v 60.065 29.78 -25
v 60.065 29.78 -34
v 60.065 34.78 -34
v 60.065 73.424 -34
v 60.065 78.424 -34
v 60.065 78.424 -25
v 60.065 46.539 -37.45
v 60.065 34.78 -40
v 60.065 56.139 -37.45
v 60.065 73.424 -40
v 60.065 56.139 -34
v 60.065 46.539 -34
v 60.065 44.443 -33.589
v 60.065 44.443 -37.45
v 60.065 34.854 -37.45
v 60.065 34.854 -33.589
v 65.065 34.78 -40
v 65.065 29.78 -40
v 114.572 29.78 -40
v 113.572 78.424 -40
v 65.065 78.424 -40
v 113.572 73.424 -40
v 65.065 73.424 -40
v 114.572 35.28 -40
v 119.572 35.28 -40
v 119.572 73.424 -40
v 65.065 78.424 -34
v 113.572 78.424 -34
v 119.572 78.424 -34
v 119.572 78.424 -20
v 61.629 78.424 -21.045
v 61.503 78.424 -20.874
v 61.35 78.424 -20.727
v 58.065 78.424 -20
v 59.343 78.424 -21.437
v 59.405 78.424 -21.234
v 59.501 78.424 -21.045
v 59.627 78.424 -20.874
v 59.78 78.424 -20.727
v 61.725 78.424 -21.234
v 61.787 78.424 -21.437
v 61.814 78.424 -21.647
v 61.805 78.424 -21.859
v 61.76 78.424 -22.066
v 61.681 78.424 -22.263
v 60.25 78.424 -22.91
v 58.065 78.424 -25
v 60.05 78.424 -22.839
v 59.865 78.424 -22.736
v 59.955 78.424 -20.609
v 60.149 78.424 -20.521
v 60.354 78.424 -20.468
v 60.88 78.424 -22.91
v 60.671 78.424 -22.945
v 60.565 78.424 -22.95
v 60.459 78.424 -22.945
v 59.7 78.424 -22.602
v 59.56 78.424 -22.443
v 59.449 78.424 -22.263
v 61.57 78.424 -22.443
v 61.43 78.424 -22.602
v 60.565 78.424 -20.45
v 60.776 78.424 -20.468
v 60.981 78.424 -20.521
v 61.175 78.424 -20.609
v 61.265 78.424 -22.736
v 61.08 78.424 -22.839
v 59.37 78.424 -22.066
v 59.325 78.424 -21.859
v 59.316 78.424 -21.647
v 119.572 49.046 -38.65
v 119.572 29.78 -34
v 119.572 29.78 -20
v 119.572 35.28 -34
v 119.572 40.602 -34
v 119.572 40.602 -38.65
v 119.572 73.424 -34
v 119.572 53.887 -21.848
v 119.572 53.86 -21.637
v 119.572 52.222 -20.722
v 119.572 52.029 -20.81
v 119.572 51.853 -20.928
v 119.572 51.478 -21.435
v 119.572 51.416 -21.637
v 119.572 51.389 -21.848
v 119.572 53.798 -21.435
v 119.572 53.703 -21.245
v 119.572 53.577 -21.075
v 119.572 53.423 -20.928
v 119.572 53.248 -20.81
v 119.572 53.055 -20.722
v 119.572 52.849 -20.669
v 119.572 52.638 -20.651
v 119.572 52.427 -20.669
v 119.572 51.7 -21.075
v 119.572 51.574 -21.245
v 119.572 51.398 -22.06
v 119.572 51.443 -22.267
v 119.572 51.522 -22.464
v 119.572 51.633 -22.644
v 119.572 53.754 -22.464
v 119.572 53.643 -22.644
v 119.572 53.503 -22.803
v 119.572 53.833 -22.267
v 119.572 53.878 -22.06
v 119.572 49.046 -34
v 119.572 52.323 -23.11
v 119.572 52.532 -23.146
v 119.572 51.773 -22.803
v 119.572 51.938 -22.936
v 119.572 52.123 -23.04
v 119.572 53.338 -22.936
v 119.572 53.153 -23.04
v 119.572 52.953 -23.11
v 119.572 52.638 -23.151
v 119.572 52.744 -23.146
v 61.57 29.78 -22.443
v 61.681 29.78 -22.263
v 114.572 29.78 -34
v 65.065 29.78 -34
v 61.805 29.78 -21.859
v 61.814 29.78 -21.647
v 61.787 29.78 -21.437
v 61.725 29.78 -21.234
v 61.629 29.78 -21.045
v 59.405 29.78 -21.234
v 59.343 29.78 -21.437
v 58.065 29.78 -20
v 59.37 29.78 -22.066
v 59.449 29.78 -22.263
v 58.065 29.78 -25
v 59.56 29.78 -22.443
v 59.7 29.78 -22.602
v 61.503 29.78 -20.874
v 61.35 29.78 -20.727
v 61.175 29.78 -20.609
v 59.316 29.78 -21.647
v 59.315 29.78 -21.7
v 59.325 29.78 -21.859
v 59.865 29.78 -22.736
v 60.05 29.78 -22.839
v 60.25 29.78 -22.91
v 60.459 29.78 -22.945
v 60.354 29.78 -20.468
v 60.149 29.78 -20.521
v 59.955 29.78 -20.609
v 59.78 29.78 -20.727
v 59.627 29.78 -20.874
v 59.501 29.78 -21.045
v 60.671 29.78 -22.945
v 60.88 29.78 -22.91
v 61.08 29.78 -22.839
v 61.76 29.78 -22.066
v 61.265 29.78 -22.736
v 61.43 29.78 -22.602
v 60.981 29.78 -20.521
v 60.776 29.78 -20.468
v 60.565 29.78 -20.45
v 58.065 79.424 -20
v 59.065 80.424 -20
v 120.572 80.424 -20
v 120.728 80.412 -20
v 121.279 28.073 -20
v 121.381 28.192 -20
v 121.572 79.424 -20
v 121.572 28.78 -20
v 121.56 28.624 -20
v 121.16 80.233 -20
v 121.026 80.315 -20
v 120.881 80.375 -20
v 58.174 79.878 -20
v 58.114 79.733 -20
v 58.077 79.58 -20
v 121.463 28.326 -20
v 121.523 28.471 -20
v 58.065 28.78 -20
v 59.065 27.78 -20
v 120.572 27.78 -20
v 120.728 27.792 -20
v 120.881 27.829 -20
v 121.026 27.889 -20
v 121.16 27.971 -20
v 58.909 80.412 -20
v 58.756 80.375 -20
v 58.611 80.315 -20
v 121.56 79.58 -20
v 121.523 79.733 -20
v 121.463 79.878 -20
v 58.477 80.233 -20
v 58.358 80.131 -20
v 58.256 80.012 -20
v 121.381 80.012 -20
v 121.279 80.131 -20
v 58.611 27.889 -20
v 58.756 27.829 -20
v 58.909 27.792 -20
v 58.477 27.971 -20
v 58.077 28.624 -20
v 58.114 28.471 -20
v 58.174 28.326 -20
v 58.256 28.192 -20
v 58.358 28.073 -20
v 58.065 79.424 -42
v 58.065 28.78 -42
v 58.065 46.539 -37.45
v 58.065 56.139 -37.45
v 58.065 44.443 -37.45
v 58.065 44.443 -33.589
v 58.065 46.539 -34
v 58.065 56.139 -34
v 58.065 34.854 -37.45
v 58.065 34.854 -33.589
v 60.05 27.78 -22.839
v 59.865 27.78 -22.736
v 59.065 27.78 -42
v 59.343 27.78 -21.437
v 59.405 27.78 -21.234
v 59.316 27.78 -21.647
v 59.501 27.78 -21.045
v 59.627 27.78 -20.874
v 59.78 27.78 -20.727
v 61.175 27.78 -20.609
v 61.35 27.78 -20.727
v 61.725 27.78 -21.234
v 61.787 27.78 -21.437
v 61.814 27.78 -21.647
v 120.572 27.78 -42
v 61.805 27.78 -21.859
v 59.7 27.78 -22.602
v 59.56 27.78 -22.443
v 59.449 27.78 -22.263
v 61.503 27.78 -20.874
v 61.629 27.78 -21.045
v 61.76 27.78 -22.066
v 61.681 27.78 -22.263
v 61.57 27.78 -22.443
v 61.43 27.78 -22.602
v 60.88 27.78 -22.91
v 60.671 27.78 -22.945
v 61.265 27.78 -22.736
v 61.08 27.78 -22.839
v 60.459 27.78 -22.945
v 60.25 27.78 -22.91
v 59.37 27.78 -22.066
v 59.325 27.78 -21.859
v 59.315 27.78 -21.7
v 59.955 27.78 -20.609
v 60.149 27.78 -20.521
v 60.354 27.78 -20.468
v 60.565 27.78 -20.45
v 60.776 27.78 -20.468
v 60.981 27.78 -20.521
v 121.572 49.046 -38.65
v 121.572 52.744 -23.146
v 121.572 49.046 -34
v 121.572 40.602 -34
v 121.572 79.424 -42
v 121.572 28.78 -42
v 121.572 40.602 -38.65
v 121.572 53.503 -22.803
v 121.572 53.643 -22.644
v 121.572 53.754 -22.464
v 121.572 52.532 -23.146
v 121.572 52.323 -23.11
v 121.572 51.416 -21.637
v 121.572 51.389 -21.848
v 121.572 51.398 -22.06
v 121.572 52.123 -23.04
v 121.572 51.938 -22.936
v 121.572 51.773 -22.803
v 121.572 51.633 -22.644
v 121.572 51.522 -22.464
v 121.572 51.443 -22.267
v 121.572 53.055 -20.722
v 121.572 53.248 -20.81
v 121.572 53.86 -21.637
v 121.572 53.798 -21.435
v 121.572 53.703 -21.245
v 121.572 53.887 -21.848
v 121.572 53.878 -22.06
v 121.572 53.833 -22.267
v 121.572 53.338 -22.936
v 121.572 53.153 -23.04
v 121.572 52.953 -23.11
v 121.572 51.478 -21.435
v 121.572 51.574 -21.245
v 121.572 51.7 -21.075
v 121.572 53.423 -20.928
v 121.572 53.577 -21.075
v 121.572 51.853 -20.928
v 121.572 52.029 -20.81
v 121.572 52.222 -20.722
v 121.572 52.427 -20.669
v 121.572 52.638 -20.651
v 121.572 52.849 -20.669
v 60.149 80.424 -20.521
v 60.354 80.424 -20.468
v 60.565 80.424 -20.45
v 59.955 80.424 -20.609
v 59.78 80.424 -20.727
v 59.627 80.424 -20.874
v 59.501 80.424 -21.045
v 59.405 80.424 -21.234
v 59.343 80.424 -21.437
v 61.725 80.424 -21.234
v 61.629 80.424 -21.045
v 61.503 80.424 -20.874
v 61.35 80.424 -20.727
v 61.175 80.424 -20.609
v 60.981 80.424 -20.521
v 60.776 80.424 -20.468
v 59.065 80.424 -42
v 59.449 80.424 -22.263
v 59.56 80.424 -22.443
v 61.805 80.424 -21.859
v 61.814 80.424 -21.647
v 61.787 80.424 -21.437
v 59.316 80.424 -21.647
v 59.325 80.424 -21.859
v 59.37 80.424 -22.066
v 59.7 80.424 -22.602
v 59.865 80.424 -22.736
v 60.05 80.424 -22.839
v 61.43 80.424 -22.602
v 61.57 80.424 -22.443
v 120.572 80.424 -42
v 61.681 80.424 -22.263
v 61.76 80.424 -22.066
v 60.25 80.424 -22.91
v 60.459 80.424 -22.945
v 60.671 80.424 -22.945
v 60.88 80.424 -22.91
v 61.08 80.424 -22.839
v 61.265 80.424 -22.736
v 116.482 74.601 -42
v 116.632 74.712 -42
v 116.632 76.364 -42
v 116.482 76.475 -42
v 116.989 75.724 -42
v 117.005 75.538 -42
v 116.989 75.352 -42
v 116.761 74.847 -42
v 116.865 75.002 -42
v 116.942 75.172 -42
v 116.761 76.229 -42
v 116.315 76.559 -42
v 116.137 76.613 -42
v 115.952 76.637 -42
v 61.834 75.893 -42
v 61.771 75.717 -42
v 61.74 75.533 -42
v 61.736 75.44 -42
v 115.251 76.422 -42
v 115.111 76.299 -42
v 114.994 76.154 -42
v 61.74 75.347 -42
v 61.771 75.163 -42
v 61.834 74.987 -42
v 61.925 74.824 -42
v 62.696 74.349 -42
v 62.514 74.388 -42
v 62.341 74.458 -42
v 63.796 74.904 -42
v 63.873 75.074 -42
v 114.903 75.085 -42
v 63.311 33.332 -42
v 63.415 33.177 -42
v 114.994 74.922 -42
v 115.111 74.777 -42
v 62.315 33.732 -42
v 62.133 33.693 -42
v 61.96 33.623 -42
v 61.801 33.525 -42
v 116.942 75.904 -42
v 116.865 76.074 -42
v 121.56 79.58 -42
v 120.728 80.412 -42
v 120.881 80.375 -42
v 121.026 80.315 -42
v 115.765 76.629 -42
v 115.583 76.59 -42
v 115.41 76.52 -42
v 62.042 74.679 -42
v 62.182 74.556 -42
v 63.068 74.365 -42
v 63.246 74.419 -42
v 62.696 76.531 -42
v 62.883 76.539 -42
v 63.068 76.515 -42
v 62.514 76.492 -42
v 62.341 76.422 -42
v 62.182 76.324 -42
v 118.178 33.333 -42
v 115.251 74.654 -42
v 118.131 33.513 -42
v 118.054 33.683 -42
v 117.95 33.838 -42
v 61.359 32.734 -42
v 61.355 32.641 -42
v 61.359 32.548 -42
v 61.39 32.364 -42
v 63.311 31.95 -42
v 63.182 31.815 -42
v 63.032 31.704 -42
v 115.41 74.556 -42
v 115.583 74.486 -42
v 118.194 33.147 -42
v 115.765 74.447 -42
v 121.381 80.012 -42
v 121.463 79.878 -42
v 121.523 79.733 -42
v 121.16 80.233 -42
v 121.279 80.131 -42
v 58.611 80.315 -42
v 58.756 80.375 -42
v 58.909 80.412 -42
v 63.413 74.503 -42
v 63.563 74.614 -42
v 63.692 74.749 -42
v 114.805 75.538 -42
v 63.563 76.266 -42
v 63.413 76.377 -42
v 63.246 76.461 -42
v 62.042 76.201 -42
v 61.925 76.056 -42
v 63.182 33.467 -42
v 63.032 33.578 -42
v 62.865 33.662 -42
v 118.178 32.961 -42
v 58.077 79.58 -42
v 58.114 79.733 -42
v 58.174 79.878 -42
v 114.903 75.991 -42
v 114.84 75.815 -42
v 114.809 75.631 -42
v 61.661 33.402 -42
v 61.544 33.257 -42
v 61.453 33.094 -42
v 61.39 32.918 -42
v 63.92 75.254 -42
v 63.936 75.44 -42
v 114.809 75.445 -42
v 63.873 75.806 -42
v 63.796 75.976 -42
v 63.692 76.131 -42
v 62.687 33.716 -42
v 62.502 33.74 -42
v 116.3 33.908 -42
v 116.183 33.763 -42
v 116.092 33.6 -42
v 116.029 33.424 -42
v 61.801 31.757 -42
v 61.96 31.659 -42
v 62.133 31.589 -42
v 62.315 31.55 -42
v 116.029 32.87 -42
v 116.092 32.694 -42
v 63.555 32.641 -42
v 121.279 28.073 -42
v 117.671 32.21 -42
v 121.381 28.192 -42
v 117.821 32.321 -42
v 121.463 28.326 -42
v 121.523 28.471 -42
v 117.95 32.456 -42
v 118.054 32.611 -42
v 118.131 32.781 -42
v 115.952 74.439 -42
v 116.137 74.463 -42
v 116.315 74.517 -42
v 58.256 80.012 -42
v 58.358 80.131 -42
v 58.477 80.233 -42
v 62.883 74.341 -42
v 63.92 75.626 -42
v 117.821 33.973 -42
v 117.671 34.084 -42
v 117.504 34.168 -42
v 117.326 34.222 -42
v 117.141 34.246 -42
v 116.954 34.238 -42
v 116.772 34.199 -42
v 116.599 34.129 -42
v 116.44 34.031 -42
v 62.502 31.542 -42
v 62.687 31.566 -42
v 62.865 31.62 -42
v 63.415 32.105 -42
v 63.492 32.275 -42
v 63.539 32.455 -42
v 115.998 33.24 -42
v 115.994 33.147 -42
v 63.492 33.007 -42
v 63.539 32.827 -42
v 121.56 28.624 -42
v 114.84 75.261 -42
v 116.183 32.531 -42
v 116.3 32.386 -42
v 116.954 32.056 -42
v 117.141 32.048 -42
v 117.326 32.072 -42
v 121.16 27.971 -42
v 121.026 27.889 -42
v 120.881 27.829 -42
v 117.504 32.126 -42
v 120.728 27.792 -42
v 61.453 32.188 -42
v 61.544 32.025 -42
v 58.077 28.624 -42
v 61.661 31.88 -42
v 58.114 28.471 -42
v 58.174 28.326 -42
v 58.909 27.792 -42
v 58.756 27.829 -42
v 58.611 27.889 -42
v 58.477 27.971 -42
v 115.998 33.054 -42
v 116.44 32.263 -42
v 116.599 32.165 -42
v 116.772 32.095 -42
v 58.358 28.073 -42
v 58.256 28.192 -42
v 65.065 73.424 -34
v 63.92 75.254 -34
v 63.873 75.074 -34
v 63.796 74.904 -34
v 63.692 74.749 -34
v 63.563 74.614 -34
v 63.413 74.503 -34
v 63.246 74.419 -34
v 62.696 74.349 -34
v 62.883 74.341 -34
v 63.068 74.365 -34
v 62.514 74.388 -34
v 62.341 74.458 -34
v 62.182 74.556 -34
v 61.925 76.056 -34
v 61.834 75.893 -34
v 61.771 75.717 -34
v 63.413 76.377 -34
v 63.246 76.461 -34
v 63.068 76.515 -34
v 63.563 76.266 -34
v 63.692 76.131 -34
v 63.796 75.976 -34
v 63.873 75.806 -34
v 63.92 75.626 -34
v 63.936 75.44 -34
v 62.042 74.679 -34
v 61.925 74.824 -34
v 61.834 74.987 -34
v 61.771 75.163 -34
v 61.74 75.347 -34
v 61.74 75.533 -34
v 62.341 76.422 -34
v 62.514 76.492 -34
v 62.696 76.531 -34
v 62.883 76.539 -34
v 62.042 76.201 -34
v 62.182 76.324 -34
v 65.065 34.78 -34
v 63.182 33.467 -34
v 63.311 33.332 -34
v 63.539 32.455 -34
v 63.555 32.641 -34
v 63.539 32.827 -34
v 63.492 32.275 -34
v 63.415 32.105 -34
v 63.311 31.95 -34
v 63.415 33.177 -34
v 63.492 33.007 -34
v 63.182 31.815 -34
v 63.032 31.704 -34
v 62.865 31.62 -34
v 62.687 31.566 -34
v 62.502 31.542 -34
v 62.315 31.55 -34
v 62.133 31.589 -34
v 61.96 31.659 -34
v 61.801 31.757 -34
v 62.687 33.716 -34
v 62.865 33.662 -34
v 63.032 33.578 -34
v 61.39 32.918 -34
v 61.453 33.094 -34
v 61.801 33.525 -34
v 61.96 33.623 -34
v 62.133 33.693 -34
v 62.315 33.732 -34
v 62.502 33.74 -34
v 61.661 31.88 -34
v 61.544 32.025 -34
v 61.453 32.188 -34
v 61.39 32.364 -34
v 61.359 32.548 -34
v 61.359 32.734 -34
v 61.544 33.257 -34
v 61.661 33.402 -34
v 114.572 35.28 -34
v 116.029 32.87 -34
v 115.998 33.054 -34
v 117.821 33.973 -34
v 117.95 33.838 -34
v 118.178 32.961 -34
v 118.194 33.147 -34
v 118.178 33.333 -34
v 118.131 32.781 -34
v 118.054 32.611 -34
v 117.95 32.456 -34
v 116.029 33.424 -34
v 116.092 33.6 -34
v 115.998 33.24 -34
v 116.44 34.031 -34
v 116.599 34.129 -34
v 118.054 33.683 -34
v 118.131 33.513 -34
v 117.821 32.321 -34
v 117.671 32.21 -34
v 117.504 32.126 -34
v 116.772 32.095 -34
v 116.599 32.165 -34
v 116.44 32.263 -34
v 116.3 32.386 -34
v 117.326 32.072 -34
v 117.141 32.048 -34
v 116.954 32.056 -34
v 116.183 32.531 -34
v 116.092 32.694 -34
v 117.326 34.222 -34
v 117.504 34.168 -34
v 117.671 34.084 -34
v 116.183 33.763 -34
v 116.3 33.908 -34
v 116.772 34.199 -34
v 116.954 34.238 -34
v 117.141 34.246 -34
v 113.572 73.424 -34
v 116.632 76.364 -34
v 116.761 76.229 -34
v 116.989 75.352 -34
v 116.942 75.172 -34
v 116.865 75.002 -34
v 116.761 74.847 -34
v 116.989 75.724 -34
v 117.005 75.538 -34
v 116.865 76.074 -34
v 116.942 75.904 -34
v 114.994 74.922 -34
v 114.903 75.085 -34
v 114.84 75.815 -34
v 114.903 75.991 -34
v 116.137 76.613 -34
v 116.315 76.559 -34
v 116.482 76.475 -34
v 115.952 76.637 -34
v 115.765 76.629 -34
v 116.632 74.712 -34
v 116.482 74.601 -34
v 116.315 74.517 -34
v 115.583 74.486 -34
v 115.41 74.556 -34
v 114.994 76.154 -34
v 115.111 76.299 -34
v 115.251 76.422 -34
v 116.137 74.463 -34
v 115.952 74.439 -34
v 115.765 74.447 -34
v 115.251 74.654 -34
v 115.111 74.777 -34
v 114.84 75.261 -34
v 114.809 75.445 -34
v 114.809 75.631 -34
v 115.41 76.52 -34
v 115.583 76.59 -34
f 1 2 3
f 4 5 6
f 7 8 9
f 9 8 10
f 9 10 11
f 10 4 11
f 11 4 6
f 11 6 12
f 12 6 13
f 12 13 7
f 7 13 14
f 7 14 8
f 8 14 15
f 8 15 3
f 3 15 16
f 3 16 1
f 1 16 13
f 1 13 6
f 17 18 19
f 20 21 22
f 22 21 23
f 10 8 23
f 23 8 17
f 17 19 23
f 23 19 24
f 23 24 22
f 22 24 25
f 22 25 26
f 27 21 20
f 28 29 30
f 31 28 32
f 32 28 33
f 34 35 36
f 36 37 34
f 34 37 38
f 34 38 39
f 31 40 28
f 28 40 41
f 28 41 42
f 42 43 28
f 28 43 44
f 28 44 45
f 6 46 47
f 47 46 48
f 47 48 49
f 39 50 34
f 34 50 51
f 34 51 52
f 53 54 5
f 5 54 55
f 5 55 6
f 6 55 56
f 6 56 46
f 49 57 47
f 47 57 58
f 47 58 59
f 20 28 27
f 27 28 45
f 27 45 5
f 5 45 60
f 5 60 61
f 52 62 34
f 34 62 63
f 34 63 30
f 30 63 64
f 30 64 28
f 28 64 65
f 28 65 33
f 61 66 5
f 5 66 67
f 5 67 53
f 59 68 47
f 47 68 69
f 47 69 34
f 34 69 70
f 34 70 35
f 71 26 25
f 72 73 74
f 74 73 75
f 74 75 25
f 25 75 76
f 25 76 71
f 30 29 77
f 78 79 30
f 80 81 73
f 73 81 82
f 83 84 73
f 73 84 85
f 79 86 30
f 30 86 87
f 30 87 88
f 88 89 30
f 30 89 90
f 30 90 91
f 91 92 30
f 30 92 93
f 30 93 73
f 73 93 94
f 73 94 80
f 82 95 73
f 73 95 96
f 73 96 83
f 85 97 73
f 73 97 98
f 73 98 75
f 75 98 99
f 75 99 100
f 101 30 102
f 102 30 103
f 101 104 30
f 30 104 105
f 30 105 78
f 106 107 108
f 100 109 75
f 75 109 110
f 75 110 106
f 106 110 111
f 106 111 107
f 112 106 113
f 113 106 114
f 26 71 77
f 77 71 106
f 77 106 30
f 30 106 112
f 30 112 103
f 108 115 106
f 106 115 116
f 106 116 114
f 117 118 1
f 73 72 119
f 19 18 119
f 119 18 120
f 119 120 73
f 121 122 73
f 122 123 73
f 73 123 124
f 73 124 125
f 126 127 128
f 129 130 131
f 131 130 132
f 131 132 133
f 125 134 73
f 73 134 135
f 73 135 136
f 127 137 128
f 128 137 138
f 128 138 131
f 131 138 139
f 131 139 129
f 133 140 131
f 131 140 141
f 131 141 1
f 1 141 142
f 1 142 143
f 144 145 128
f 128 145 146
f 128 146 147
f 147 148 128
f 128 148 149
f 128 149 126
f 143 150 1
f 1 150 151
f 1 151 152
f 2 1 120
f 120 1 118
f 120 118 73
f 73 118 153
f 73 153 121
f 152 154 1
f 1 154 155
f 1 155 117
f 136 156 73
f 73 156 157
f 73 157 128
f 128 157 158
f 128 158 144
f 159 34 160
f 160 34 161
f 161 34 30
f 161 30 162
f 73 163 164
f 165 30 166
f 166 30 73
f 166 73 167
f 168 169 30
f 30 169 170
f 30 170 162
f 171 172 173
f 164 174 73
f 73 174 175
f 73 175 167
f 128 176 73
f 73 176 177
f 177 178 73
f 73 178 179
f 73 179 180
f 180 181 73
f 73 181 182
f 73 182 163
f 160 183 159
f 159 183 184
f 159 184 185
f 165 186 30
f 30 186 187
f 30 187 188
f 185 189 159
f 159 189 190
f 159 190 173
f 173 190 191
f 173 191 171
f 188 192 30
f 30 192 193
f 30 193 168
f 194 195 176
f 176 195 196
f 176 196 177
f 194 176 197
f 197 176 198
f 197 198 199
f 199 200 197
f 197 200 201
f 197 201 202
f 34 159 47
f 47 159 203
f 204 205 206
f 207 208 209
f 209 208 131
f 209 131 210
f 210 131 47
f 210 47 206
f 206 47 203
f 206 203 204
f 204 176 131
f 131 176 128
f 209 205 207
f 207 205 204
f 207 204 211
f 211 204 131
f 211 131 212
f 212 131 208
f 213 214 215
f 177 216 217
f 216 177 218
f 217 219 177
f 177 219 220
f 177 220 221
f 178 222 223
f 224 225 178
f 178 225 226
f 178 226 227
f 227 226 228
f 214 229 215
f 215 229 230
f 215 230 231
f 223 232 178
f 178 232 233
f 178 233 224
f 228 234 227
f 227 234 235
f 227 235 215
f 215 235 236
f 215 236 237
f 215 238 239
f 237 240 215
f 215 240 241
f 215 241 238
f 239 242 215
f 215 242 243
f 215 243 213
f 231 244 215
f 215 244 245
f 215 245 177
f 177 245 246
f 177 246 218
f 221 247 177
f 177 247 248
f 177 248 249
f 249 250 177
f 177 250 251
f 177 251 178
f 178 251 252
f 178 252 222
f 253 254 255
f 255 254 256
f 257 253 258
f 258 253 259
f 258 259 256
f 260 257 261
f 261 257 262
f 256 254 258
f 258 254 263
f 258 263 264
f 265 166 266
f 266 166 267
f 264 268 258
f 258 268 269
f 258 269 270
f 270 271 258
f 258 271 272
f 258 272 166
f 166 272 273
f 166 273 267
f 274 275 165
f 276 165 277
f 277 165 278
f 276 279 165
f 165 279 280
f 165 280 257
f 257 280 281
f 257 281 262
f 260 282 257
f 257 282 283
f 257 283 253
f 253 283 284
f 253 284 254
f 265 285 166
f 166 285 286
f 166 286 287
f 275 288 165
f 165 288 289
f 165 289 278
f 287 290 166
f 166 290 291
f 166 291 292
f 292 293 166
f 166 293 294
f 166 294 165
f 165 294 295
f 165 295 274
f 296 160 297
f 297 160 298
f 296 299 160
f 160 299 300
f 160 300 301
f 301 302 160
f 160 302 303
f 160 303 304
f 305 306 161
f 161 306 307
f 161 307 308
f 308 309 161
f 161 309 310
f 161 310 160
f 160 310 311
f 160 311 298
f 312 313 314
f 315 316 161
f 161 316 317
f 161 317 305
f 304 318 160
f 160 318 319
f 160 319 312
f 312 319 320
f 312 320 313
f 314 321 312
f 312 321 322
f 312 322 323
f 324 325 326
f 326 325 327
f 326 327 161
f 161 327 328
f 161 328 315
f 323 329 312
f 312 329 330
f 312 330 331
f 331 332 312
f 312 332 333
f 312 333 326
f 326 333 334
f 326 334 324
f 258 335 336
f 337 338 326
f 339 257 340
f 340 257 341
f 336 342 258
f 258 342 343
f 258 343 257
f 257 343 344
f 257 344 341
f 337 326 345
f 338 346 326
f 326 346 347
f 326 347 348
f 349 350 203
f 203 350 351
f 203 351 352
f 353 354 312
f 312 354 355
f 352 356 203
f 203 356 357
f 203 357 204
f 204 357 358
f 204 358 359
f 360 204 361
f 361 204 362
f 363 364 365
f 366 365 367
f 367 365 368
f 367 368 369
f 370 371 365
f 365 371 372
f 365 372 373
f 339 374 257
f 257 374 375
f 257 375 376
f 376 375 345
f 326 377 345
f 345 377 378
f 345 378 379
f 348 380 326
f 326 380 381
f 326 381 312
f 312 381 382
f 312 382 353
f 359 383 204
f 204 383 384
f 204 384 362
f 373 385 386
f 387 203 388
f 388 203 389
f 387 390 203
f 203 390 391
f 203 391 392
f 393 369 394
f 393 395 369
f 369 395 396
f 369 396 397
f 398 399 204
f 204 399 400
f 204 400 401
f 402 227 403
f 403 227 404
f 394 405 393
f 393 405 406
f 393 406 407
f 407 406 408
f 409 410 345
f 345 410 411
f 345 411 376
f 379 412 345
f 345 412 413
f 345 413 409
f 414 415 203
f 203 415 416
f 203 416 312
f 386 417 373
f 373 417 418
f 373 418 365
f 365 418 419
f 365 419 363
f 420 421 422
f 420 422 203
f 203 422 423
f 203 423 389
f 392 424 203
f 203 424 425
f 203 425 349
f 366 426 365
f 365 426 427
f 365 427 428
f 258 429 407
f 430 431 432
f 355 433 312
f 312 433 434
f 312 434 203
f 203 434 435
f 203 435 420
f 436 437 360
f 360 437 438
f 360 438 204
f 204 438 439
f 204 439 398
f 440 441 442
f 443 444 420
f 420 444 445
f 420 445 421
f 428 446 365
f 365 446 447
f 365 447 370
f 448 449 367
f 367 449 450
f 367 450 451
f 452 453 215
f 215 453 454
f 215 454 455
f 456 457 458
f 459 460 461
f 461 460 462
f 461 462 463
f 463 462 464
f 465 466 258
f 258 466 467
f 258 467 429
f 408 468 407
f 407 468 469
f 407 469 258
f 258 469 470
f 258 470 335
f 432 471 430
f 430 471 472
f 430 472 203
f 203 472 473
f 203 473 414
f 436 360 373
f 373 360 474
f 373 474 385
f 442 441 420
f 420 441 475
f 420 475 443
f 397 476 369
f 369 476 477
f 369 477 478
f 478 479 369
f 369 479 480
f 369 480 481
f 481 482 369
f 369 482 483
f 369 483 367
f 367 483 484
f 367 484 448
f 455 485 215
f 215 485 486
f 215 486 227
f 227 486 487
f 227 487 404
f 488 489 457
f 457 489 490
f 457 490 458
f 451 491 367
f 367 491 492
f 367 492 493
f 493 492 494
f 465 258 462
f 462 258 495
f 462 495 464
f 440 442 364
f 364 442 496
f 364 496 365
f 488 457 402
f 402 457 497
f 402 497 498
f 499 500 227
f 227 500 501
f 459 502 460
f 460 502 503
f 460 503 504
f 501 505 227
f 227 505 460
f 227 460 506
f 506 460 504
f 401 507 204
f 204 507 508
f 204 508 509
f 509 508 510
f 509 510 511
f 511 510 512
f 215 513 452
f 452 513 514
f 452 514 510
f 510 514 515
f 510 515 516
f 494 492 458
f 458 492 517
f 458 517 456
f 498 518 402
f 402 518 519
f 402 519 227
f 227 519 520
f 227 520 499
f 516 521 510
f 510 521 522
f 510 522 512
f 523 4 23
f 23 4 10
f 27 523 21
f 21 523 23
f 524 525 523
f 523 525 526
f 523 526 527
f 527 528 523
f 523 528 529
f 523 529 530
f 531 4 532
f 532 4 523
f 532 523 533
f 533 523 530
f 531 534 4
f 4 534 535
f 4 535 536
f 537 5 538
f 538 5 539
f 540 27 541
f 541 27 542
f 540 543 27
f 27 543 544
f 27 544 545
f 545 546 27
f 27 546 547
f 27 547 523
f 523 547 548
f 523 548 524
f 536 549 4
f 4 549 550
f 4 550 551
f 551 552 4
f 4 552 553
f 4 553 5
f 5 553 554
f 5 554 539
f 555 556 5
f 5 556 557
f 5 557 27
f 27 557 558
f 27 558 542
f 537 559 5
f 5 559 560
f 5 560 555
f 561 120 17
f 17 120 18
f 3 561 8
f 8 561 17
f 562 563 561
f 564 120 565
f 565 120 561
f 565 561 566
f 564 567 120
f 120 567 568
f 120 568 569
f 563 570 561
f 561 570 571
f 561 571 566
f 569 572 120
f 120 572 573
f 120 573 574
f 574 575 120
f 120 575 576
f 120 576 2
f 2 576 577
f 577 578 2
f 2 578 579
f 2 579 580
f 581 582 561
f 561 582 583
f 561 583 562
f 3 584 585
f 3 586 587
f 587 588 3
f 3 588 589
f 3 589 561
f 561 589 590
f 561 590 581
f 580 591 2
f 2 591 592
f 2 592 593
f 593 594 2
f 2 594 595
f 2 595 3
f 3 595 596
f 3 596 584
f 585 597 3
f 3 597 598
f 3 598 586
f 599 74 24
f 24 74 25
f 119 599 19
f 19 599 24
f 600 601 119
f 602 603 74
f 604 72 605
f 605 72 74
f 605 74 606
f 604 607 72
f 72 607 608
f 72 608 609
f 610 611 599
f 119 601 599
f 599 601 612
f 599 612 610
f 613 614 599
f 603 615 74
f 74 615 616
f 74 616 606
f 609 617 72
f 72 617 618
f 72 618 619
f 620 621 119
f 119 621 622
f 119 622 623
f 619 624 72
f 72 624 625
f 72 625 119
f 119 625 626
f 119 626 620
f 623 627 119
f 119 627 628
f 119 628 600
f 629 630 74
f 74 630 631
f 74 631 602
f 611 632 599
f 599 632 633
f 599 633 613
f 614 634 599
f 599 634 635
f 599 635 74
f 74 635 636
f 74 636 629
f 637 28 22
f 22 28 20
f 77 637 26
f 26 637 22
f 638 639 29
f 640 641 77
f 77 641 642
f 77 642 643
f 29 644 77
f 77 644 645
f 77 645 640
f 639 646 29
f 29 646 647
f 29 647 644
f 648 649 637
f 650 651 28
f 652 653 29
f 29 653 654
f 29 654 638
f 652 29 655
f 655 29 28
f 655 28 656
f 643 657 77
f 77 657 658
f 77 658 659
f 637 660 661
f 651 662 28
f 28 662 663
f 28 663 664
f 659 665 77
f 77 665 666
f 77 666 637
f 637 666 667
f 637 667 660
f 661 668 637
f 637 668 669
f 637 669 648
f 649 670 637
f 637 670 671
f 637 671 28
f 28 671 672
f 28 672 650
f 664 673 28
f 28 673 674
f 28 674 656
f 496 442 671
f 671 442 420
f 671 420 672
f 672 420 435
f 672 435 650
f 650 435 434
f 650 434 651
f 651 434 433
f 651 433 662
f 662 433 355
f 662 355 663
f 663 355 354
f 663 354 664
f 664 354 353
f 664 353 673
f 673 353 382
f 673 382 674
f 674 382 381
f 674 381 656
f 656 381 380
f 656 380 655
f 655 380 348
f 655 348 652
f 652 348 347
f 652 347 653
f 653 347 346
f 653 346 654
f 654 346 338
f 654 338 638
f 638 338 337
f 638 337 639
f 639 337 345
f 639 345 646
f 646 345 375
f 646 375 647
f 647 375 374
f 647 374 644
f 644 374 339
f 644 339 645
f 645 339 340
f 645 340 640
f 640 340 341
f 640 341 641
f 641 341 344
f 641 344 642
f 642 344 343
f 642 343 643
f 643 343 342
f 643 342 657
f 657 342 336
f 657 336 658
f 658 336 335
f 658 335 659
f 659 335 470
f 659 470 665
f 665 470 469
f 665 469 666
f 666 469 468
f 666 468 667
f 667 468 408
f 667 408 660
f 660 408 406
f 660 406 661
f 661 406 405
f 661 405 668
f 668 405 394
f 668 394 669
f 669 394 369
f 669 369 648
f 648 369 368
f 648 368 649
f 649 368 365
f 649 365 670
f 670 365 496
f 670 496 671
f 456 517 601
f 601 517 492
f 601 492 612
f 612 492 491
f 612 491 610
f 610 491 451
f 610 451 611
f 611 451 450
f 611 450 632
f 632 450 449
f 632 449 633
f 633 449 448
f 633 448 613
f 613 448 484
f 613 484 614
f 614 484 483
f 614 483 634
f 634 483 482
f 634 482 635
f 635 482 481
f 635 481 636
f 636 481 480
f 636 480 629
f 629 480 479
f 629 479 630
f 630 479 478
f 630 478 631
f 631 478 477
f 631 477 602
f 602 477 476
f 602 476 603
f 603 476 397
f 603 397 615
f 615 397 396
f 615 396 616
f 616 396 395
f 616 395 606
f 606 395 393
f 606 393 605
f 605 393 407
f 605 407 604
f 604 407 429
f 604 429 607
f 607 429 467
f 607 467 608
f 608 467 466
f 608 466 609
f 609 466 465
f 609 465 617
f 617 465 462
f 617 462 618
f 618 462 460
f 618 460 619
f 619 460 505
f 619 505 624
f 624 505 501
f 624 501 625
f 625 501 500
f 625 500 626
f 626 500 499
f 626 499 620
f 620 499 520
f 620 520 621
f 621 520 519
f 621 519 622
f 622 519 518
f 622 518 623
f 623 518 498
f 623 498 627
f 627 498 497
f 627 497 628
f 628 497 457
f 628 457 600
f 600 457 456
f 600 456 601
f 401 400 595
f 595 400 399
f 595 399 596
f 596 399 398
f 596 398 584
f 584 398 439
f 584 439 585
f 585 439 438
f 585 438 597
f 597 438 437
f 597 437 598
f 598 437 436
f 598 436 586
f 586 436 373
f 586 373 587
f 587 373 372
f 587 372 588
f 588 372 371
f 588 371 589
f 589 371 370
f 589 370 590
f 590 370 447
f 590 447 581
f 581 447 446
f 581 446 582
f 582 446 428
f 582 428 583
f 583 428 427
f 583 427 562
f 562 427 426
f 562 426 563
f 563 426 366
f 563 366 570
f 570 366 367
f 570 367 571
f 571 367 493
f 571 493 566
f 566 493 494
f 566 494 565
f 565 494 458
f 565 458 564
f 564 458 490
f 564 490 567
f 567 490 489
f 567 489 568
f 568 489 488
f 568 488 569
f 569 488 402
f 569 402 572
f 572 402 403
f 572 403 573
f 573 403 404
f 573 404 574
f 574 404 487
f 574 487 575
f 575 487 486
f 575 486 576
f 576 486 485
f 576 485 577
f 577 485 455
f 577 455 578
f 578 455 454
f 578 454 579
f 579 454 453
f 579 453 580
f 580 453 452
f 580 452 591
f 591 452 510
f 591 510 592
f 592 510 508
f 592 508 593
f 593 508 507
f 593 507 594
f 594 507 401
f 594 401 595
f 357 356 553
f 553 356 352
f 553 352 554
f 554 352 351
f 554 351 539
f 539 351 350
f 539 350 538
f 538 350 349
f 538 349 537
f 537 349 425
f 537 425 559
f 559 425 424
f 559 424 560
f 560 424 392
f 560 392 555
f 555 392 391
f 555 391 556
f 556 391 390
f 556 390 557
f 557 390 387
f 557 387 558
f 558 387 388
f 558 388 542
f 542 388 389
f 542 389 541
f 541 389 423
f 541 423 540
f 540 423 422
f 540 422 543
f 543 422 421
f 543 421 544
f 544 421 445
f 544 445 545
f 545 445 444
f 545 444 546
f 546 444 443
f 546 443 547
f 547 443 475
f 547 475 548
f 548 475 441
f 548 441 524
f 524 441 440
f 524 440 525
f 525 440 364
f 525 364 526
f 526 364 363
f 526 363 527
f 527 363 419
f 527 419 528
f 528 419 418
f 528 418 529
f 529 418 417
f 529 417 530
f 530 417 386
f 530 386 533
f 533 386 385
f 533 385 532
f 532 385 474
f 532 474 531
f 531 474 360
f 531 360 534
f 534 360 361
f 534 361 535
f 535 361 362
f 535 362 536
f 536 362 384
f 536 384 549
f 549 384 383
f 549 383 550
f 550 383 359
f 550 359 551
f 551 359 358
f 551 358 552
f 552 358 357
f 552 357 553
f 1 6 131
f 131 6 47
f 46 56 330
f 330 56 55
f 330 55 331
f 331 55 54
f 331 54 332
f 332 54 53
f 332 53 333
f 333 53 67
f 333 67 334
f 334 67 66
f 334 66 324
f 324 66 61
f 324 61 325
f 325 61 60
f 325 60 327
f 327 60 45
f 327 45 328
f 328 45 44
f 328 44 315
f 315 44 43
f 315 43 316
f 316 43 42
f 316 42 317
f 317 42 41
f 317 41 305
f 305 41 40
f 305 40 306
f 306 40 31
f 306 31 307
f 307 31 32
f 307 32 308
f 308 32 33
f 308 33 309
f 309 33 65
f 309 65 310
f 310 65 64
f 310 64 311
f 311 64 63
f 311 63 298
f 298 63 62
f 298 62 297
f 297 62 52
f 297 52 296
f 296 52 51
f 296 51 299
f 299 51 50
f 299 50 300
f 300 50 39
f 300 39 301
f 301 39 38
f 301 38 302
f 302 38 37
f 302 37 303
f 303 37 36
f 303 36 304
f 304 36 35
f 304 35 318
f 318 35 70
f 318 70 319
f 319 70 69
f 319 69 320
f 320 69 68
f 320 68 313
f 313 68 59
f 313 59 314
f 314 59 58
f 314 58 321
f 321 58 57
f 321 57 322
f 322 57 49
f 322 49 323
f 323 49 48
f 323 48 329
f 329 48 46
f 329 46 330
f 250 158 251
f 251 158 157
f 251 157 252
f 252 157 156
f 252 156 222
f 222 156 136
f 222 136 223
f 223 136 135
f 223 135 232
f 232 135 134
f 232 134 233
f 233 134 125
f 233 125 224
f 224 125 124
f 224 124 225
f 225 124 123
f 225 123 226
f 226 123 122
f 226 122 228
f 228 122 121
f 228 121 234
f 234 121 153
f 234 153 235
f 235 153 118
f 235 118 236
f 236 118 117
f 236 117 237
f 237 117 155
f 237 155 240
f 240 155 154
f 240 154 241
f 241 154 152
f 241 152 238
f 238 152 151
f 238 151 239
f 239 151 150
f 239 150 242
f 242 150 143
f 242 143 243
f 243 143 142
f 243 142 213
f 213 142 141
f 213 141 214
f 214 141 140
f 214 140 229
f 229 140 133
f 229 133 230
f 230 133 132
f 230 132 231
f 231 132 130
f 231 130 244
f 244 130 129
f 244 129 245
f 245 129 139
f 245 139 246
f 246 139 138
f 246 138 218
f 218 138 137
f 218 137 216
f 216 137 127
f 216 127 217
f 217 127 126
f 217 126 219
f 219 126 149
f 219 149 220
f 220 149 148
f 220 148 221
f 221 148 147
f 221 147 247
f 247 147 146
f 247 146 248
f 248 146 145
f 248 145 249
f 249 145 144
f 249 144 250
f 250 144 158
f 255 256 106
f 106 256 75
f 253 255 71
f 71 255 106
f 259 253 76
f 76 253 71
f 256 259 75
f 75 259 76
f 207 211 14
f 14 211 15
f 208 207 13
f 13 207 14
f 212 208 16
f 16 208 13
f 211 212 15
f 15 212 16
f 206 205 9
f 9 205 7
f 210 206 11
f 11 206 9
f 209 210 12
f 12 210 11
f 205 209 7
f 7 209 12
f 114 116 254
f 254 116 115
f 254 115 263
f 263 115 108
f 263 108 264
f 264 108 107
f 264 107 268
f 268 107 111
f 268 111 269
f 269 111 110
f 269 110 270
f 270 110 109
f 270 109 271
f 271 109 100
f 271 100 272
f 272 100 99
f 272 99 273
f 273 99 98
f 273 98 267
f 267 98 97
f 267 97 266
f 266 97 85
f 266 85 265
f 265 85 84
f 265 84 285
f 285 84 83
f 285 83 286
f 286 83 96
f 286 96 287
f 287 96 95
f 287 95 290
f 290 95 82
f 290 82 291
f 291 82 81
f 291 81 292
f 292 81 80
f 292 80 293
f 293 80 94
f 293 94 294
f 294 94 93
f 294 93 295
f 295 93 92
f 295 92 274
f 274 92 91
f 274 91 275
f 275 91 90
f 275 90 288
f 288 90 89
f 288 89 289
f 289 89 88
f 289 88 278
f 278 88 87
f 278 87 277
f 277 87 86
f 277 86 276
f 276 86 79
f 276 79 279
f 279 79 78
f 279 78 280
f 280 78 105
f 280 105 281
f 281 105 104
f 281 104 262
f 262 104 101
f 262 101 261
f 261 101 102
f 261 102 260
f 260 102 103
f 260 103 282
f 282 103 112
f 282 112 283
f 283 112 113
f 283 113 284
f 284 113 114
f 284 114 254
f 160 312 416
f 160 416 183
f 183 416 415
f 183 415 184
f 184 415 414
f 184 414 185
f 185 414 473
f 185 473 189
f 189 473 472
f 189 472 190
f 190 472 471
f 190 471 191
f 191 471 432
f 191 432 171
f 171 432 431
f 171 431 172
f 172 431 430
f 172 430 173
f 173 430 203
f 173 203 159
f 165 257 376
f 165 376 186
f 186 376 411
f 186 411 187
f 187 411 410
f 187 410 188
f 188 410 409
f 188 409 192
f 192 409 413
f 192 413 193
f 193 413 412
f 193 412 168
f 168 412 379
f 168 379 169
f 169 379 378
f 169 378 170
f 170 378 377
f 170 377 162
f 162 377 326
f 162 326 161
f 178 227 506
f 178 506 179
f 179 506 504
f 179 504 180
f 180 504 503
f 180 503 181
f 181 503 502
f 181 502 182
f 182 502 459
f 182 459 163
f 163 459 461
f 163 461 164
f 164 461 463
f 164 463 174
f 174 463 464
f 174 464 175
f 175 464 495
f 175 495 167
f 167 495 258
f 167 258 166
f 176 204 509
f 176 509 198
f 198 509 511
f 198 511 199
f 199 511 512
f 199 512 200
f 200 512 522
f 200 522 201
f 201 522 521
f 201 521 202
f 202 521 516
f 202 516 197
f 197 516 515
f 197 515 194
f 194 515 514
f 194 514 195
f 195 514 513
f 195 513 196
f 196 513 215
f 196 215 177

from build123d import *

# Parameters (mm, degrees)
BOSS_EXTRUDE1_START = -40
SKETCH2_W           = 59.507
SKETCH2_H           = 48.644
BOSS_EXTRUDE1_DEPTH = 20
SKETCH3_W           = 63.507
SKETCH3_H           = 52.644
BOSS_EXTRUDE2_DEPTH = 2
SKETCH12_W          = 5
SKETCH12_H          = 5
SKETCH12_W_2        = 6
SKETCH12_H_2        = 5.5
BOSS_EXTRUDE4_DEPTH = 6
SKETCH20_R          = 1.1
CUT_EXTRUDE12_DEPTH = 10
SKETCH23_W          = 5
SKETCH23_H          = 48.644
CUT_EXTRUDE13_DEPTH = 5
SKETCH25_R          = 1.25
CUT_EXTRUDE14_DEPTH = 73
SKETCH27_W          = 4.650000165
SKETCH27_H          = 8.443476487
CUT_EXTRUDE15_DEPTH = 3
SKETCH28_W          = 3.45
SKETCH28_H          = 9.6
SKETCH28_W_2        = 3.86148
SKETCH28_H_2        = 9.589284943
CUT_EXTRUDE16_DEPTH = 3
SKETCH30_R          = 1.25
CUT_EXTRUDE24_DEPTH = 3
FILLET1_R           = 1
FILLET2_R           = 1
FILLET3_R           = 1
FILLET4_R           = 1


with BuildPart() as part:
    # Sketch2 → Boss-Extrude1 (new body)
    with BuildSketch(Plane.XY.offset(BOSS_EXTRUDE1_START)):
        Polygon((60.436010502, 80.424), (121.572, 80.424), (121.572, 27.78), (58.065, 27.78), (58.065, 80.424), align=None)
        with Locations((89.8185, 54.102)):
            Rectangle(SKETCH2_W, SKETCH2_H, mode=Mode.SUBTRACT)
    extrude(amount=BOSS_EXTRUDE1_DEPTH)

    # Sketch3 → Boss-Extrude2 (add)
    with BuildSketch(Plane(origin=(0, 0, -40), x_dir=(-1, 0, 0), z_dir=(0, 0, -1))):
        with Locations((-89.8185, 54.102)):
            Rectangle(SKETCH3_W, SKETCH3_H)
    extrude(amount=BOSS_EXTRUDE2_DEPTH)

    # Sketch12 → Boss-Extrude4 (add)
    with BuildSketch(Plane.XY.offset(-40)):
        with Locations((62.565, 75.924)):
            Rectangle(SKETCH12_W, SKETCH12_H)
        with Locations((116.572, 75.924)):
            Rectangle(SKETCH12_W_2, SKETCH12_H)
        with Locations((117.072, 32.53)):
            Rectangle(SKETCH12_W, SKETCH12_H_2)
        with Locations((62.565, 32.28)):
            Rectangle(SKETCH12_W, SKETCH12_H)
    extrude(amount=BOSS_EXTRUDE4_DEPTH)

    # Sketch20 → Cut-Extrude12 (cut)
    with BuildSketch(Plane.XY.offset(-34)):
        with Locations((62.836, 75.44)):
            Circle(SKETCH20_R)
        with Locations((115.905, 75.538)):
            Circle(SKETCH20_R)
        with Locations((117.094, 33.147)):
            Circle(SKETCH20_R)
        with Locations((62.455, 32.641)):
            Circle(SKETCH20_R)
    extrude(amount=-CUT_EXTRUDE12_DEPTH, mode=Mode.SUBTRACT)

    # Sketch23 → Cut-Extrude13 (cut)
    with BuildSketch(Plane(origin=(60.065, 0, 0), x_dir=(0, 0, -1), z_dir=(1, 0, 0))):
        with Locations((22.5, 54.102)):
            Rectangle(SKETCH23_W, SKETCH23_H)
    extrude(amount=-CUT_EXTRUDE13_DEPTH, mode=Mode.SUBTRACT)

    # Sketch25 → Cut-Extrude14 (cut)
    with BuildSketch(Plane(origin=(0, 80.424, 0), x_dir=(1, 0, 0), z_dir=(0, 1, 0))):
        with Locations(Location((60.565, 21.7, 0), (0, 0, 270))):
            Circle(SKETCH25_R)
    extrude(amount=-CUT_EXTRUDE14_DEPTH, mode=Mode.SUBTRACT)

    # Sketch27 → Cut-Extrude15 (cut)
    with BuildSketch(Plane(origin=(121.572, 0, 0), x_dir=(0, 0, -1), z_dir=(1, 0, 0))):
        with Locations((36.324999988, 44.82384952)):
            Rectangle(SKETCH27_W, SKETCH27_H)
    extrude(amount=-CUT_EXTRUDE15_DEPTH, mode=Mode.SUBTRACT)

    # Sketch28 → Cut-Extrude16 (cut)
    with BuildSketch(Plane.ZY.offset(-58.065)):
        with Locations((-35.725, 51.339048194)):
            Rectangle(SKETCH28_W, SKETCH28_H)
        with Locations((-35.51926, 39.648781472)):
            Rectangle(SKETCH28_W_2, SKETCH28_H_2)
    extrude(amount=-CUT_EXTRUDE16_DEPTH, mode=Mode.SUBTRACT)

    # Sketch30 → Cut-Extrude24 (cut)
    with BuildSketch(Plane(origin=(119.572, 0, 0), x_dir=(0, 0, -1), z_dir=(1, 0, 0))):
        with Locations(Location((21.90078297, 52.638173314, 0), (0, 0, 180))):
            Circle(SKETCH30_R)
    extrude(amount=CUT_EXTRUDE24_DEPTH, mode=Mode.SUBTRACT)

    # Fillet1
    fillet1_edges = [part.edges().sort_by_distance(p)[0] for p in [
        (58.065, 80.424, -31),
    ]]
    fillet(fillet1_edges, radius=FILLET1_R)

    # Fillet2
    fillet2_edges = [part.edges().sort_by_distance(p)[0] for p in [
        (121.572, 80.424, -31),
    ]]
    fillet(fillet2_edges, radius=FILLET2_R)

    # Fillet3
    fillet3_edges = [part.edges().sort_by_distance(p)[0] for p in [
        (121.572, 27.78, -31),
    ]]
    fillet(fillet3_edges, radius=FILLET3_R)

    # Fillet4
    fillet4_edges = [part.edges().sort_by_distance(p)[0] for p in [
        (58.065, 27.78, -31),
    ]]
    fillet(fillet4_edges, radius=FILLET4_R)


solid = part.part
